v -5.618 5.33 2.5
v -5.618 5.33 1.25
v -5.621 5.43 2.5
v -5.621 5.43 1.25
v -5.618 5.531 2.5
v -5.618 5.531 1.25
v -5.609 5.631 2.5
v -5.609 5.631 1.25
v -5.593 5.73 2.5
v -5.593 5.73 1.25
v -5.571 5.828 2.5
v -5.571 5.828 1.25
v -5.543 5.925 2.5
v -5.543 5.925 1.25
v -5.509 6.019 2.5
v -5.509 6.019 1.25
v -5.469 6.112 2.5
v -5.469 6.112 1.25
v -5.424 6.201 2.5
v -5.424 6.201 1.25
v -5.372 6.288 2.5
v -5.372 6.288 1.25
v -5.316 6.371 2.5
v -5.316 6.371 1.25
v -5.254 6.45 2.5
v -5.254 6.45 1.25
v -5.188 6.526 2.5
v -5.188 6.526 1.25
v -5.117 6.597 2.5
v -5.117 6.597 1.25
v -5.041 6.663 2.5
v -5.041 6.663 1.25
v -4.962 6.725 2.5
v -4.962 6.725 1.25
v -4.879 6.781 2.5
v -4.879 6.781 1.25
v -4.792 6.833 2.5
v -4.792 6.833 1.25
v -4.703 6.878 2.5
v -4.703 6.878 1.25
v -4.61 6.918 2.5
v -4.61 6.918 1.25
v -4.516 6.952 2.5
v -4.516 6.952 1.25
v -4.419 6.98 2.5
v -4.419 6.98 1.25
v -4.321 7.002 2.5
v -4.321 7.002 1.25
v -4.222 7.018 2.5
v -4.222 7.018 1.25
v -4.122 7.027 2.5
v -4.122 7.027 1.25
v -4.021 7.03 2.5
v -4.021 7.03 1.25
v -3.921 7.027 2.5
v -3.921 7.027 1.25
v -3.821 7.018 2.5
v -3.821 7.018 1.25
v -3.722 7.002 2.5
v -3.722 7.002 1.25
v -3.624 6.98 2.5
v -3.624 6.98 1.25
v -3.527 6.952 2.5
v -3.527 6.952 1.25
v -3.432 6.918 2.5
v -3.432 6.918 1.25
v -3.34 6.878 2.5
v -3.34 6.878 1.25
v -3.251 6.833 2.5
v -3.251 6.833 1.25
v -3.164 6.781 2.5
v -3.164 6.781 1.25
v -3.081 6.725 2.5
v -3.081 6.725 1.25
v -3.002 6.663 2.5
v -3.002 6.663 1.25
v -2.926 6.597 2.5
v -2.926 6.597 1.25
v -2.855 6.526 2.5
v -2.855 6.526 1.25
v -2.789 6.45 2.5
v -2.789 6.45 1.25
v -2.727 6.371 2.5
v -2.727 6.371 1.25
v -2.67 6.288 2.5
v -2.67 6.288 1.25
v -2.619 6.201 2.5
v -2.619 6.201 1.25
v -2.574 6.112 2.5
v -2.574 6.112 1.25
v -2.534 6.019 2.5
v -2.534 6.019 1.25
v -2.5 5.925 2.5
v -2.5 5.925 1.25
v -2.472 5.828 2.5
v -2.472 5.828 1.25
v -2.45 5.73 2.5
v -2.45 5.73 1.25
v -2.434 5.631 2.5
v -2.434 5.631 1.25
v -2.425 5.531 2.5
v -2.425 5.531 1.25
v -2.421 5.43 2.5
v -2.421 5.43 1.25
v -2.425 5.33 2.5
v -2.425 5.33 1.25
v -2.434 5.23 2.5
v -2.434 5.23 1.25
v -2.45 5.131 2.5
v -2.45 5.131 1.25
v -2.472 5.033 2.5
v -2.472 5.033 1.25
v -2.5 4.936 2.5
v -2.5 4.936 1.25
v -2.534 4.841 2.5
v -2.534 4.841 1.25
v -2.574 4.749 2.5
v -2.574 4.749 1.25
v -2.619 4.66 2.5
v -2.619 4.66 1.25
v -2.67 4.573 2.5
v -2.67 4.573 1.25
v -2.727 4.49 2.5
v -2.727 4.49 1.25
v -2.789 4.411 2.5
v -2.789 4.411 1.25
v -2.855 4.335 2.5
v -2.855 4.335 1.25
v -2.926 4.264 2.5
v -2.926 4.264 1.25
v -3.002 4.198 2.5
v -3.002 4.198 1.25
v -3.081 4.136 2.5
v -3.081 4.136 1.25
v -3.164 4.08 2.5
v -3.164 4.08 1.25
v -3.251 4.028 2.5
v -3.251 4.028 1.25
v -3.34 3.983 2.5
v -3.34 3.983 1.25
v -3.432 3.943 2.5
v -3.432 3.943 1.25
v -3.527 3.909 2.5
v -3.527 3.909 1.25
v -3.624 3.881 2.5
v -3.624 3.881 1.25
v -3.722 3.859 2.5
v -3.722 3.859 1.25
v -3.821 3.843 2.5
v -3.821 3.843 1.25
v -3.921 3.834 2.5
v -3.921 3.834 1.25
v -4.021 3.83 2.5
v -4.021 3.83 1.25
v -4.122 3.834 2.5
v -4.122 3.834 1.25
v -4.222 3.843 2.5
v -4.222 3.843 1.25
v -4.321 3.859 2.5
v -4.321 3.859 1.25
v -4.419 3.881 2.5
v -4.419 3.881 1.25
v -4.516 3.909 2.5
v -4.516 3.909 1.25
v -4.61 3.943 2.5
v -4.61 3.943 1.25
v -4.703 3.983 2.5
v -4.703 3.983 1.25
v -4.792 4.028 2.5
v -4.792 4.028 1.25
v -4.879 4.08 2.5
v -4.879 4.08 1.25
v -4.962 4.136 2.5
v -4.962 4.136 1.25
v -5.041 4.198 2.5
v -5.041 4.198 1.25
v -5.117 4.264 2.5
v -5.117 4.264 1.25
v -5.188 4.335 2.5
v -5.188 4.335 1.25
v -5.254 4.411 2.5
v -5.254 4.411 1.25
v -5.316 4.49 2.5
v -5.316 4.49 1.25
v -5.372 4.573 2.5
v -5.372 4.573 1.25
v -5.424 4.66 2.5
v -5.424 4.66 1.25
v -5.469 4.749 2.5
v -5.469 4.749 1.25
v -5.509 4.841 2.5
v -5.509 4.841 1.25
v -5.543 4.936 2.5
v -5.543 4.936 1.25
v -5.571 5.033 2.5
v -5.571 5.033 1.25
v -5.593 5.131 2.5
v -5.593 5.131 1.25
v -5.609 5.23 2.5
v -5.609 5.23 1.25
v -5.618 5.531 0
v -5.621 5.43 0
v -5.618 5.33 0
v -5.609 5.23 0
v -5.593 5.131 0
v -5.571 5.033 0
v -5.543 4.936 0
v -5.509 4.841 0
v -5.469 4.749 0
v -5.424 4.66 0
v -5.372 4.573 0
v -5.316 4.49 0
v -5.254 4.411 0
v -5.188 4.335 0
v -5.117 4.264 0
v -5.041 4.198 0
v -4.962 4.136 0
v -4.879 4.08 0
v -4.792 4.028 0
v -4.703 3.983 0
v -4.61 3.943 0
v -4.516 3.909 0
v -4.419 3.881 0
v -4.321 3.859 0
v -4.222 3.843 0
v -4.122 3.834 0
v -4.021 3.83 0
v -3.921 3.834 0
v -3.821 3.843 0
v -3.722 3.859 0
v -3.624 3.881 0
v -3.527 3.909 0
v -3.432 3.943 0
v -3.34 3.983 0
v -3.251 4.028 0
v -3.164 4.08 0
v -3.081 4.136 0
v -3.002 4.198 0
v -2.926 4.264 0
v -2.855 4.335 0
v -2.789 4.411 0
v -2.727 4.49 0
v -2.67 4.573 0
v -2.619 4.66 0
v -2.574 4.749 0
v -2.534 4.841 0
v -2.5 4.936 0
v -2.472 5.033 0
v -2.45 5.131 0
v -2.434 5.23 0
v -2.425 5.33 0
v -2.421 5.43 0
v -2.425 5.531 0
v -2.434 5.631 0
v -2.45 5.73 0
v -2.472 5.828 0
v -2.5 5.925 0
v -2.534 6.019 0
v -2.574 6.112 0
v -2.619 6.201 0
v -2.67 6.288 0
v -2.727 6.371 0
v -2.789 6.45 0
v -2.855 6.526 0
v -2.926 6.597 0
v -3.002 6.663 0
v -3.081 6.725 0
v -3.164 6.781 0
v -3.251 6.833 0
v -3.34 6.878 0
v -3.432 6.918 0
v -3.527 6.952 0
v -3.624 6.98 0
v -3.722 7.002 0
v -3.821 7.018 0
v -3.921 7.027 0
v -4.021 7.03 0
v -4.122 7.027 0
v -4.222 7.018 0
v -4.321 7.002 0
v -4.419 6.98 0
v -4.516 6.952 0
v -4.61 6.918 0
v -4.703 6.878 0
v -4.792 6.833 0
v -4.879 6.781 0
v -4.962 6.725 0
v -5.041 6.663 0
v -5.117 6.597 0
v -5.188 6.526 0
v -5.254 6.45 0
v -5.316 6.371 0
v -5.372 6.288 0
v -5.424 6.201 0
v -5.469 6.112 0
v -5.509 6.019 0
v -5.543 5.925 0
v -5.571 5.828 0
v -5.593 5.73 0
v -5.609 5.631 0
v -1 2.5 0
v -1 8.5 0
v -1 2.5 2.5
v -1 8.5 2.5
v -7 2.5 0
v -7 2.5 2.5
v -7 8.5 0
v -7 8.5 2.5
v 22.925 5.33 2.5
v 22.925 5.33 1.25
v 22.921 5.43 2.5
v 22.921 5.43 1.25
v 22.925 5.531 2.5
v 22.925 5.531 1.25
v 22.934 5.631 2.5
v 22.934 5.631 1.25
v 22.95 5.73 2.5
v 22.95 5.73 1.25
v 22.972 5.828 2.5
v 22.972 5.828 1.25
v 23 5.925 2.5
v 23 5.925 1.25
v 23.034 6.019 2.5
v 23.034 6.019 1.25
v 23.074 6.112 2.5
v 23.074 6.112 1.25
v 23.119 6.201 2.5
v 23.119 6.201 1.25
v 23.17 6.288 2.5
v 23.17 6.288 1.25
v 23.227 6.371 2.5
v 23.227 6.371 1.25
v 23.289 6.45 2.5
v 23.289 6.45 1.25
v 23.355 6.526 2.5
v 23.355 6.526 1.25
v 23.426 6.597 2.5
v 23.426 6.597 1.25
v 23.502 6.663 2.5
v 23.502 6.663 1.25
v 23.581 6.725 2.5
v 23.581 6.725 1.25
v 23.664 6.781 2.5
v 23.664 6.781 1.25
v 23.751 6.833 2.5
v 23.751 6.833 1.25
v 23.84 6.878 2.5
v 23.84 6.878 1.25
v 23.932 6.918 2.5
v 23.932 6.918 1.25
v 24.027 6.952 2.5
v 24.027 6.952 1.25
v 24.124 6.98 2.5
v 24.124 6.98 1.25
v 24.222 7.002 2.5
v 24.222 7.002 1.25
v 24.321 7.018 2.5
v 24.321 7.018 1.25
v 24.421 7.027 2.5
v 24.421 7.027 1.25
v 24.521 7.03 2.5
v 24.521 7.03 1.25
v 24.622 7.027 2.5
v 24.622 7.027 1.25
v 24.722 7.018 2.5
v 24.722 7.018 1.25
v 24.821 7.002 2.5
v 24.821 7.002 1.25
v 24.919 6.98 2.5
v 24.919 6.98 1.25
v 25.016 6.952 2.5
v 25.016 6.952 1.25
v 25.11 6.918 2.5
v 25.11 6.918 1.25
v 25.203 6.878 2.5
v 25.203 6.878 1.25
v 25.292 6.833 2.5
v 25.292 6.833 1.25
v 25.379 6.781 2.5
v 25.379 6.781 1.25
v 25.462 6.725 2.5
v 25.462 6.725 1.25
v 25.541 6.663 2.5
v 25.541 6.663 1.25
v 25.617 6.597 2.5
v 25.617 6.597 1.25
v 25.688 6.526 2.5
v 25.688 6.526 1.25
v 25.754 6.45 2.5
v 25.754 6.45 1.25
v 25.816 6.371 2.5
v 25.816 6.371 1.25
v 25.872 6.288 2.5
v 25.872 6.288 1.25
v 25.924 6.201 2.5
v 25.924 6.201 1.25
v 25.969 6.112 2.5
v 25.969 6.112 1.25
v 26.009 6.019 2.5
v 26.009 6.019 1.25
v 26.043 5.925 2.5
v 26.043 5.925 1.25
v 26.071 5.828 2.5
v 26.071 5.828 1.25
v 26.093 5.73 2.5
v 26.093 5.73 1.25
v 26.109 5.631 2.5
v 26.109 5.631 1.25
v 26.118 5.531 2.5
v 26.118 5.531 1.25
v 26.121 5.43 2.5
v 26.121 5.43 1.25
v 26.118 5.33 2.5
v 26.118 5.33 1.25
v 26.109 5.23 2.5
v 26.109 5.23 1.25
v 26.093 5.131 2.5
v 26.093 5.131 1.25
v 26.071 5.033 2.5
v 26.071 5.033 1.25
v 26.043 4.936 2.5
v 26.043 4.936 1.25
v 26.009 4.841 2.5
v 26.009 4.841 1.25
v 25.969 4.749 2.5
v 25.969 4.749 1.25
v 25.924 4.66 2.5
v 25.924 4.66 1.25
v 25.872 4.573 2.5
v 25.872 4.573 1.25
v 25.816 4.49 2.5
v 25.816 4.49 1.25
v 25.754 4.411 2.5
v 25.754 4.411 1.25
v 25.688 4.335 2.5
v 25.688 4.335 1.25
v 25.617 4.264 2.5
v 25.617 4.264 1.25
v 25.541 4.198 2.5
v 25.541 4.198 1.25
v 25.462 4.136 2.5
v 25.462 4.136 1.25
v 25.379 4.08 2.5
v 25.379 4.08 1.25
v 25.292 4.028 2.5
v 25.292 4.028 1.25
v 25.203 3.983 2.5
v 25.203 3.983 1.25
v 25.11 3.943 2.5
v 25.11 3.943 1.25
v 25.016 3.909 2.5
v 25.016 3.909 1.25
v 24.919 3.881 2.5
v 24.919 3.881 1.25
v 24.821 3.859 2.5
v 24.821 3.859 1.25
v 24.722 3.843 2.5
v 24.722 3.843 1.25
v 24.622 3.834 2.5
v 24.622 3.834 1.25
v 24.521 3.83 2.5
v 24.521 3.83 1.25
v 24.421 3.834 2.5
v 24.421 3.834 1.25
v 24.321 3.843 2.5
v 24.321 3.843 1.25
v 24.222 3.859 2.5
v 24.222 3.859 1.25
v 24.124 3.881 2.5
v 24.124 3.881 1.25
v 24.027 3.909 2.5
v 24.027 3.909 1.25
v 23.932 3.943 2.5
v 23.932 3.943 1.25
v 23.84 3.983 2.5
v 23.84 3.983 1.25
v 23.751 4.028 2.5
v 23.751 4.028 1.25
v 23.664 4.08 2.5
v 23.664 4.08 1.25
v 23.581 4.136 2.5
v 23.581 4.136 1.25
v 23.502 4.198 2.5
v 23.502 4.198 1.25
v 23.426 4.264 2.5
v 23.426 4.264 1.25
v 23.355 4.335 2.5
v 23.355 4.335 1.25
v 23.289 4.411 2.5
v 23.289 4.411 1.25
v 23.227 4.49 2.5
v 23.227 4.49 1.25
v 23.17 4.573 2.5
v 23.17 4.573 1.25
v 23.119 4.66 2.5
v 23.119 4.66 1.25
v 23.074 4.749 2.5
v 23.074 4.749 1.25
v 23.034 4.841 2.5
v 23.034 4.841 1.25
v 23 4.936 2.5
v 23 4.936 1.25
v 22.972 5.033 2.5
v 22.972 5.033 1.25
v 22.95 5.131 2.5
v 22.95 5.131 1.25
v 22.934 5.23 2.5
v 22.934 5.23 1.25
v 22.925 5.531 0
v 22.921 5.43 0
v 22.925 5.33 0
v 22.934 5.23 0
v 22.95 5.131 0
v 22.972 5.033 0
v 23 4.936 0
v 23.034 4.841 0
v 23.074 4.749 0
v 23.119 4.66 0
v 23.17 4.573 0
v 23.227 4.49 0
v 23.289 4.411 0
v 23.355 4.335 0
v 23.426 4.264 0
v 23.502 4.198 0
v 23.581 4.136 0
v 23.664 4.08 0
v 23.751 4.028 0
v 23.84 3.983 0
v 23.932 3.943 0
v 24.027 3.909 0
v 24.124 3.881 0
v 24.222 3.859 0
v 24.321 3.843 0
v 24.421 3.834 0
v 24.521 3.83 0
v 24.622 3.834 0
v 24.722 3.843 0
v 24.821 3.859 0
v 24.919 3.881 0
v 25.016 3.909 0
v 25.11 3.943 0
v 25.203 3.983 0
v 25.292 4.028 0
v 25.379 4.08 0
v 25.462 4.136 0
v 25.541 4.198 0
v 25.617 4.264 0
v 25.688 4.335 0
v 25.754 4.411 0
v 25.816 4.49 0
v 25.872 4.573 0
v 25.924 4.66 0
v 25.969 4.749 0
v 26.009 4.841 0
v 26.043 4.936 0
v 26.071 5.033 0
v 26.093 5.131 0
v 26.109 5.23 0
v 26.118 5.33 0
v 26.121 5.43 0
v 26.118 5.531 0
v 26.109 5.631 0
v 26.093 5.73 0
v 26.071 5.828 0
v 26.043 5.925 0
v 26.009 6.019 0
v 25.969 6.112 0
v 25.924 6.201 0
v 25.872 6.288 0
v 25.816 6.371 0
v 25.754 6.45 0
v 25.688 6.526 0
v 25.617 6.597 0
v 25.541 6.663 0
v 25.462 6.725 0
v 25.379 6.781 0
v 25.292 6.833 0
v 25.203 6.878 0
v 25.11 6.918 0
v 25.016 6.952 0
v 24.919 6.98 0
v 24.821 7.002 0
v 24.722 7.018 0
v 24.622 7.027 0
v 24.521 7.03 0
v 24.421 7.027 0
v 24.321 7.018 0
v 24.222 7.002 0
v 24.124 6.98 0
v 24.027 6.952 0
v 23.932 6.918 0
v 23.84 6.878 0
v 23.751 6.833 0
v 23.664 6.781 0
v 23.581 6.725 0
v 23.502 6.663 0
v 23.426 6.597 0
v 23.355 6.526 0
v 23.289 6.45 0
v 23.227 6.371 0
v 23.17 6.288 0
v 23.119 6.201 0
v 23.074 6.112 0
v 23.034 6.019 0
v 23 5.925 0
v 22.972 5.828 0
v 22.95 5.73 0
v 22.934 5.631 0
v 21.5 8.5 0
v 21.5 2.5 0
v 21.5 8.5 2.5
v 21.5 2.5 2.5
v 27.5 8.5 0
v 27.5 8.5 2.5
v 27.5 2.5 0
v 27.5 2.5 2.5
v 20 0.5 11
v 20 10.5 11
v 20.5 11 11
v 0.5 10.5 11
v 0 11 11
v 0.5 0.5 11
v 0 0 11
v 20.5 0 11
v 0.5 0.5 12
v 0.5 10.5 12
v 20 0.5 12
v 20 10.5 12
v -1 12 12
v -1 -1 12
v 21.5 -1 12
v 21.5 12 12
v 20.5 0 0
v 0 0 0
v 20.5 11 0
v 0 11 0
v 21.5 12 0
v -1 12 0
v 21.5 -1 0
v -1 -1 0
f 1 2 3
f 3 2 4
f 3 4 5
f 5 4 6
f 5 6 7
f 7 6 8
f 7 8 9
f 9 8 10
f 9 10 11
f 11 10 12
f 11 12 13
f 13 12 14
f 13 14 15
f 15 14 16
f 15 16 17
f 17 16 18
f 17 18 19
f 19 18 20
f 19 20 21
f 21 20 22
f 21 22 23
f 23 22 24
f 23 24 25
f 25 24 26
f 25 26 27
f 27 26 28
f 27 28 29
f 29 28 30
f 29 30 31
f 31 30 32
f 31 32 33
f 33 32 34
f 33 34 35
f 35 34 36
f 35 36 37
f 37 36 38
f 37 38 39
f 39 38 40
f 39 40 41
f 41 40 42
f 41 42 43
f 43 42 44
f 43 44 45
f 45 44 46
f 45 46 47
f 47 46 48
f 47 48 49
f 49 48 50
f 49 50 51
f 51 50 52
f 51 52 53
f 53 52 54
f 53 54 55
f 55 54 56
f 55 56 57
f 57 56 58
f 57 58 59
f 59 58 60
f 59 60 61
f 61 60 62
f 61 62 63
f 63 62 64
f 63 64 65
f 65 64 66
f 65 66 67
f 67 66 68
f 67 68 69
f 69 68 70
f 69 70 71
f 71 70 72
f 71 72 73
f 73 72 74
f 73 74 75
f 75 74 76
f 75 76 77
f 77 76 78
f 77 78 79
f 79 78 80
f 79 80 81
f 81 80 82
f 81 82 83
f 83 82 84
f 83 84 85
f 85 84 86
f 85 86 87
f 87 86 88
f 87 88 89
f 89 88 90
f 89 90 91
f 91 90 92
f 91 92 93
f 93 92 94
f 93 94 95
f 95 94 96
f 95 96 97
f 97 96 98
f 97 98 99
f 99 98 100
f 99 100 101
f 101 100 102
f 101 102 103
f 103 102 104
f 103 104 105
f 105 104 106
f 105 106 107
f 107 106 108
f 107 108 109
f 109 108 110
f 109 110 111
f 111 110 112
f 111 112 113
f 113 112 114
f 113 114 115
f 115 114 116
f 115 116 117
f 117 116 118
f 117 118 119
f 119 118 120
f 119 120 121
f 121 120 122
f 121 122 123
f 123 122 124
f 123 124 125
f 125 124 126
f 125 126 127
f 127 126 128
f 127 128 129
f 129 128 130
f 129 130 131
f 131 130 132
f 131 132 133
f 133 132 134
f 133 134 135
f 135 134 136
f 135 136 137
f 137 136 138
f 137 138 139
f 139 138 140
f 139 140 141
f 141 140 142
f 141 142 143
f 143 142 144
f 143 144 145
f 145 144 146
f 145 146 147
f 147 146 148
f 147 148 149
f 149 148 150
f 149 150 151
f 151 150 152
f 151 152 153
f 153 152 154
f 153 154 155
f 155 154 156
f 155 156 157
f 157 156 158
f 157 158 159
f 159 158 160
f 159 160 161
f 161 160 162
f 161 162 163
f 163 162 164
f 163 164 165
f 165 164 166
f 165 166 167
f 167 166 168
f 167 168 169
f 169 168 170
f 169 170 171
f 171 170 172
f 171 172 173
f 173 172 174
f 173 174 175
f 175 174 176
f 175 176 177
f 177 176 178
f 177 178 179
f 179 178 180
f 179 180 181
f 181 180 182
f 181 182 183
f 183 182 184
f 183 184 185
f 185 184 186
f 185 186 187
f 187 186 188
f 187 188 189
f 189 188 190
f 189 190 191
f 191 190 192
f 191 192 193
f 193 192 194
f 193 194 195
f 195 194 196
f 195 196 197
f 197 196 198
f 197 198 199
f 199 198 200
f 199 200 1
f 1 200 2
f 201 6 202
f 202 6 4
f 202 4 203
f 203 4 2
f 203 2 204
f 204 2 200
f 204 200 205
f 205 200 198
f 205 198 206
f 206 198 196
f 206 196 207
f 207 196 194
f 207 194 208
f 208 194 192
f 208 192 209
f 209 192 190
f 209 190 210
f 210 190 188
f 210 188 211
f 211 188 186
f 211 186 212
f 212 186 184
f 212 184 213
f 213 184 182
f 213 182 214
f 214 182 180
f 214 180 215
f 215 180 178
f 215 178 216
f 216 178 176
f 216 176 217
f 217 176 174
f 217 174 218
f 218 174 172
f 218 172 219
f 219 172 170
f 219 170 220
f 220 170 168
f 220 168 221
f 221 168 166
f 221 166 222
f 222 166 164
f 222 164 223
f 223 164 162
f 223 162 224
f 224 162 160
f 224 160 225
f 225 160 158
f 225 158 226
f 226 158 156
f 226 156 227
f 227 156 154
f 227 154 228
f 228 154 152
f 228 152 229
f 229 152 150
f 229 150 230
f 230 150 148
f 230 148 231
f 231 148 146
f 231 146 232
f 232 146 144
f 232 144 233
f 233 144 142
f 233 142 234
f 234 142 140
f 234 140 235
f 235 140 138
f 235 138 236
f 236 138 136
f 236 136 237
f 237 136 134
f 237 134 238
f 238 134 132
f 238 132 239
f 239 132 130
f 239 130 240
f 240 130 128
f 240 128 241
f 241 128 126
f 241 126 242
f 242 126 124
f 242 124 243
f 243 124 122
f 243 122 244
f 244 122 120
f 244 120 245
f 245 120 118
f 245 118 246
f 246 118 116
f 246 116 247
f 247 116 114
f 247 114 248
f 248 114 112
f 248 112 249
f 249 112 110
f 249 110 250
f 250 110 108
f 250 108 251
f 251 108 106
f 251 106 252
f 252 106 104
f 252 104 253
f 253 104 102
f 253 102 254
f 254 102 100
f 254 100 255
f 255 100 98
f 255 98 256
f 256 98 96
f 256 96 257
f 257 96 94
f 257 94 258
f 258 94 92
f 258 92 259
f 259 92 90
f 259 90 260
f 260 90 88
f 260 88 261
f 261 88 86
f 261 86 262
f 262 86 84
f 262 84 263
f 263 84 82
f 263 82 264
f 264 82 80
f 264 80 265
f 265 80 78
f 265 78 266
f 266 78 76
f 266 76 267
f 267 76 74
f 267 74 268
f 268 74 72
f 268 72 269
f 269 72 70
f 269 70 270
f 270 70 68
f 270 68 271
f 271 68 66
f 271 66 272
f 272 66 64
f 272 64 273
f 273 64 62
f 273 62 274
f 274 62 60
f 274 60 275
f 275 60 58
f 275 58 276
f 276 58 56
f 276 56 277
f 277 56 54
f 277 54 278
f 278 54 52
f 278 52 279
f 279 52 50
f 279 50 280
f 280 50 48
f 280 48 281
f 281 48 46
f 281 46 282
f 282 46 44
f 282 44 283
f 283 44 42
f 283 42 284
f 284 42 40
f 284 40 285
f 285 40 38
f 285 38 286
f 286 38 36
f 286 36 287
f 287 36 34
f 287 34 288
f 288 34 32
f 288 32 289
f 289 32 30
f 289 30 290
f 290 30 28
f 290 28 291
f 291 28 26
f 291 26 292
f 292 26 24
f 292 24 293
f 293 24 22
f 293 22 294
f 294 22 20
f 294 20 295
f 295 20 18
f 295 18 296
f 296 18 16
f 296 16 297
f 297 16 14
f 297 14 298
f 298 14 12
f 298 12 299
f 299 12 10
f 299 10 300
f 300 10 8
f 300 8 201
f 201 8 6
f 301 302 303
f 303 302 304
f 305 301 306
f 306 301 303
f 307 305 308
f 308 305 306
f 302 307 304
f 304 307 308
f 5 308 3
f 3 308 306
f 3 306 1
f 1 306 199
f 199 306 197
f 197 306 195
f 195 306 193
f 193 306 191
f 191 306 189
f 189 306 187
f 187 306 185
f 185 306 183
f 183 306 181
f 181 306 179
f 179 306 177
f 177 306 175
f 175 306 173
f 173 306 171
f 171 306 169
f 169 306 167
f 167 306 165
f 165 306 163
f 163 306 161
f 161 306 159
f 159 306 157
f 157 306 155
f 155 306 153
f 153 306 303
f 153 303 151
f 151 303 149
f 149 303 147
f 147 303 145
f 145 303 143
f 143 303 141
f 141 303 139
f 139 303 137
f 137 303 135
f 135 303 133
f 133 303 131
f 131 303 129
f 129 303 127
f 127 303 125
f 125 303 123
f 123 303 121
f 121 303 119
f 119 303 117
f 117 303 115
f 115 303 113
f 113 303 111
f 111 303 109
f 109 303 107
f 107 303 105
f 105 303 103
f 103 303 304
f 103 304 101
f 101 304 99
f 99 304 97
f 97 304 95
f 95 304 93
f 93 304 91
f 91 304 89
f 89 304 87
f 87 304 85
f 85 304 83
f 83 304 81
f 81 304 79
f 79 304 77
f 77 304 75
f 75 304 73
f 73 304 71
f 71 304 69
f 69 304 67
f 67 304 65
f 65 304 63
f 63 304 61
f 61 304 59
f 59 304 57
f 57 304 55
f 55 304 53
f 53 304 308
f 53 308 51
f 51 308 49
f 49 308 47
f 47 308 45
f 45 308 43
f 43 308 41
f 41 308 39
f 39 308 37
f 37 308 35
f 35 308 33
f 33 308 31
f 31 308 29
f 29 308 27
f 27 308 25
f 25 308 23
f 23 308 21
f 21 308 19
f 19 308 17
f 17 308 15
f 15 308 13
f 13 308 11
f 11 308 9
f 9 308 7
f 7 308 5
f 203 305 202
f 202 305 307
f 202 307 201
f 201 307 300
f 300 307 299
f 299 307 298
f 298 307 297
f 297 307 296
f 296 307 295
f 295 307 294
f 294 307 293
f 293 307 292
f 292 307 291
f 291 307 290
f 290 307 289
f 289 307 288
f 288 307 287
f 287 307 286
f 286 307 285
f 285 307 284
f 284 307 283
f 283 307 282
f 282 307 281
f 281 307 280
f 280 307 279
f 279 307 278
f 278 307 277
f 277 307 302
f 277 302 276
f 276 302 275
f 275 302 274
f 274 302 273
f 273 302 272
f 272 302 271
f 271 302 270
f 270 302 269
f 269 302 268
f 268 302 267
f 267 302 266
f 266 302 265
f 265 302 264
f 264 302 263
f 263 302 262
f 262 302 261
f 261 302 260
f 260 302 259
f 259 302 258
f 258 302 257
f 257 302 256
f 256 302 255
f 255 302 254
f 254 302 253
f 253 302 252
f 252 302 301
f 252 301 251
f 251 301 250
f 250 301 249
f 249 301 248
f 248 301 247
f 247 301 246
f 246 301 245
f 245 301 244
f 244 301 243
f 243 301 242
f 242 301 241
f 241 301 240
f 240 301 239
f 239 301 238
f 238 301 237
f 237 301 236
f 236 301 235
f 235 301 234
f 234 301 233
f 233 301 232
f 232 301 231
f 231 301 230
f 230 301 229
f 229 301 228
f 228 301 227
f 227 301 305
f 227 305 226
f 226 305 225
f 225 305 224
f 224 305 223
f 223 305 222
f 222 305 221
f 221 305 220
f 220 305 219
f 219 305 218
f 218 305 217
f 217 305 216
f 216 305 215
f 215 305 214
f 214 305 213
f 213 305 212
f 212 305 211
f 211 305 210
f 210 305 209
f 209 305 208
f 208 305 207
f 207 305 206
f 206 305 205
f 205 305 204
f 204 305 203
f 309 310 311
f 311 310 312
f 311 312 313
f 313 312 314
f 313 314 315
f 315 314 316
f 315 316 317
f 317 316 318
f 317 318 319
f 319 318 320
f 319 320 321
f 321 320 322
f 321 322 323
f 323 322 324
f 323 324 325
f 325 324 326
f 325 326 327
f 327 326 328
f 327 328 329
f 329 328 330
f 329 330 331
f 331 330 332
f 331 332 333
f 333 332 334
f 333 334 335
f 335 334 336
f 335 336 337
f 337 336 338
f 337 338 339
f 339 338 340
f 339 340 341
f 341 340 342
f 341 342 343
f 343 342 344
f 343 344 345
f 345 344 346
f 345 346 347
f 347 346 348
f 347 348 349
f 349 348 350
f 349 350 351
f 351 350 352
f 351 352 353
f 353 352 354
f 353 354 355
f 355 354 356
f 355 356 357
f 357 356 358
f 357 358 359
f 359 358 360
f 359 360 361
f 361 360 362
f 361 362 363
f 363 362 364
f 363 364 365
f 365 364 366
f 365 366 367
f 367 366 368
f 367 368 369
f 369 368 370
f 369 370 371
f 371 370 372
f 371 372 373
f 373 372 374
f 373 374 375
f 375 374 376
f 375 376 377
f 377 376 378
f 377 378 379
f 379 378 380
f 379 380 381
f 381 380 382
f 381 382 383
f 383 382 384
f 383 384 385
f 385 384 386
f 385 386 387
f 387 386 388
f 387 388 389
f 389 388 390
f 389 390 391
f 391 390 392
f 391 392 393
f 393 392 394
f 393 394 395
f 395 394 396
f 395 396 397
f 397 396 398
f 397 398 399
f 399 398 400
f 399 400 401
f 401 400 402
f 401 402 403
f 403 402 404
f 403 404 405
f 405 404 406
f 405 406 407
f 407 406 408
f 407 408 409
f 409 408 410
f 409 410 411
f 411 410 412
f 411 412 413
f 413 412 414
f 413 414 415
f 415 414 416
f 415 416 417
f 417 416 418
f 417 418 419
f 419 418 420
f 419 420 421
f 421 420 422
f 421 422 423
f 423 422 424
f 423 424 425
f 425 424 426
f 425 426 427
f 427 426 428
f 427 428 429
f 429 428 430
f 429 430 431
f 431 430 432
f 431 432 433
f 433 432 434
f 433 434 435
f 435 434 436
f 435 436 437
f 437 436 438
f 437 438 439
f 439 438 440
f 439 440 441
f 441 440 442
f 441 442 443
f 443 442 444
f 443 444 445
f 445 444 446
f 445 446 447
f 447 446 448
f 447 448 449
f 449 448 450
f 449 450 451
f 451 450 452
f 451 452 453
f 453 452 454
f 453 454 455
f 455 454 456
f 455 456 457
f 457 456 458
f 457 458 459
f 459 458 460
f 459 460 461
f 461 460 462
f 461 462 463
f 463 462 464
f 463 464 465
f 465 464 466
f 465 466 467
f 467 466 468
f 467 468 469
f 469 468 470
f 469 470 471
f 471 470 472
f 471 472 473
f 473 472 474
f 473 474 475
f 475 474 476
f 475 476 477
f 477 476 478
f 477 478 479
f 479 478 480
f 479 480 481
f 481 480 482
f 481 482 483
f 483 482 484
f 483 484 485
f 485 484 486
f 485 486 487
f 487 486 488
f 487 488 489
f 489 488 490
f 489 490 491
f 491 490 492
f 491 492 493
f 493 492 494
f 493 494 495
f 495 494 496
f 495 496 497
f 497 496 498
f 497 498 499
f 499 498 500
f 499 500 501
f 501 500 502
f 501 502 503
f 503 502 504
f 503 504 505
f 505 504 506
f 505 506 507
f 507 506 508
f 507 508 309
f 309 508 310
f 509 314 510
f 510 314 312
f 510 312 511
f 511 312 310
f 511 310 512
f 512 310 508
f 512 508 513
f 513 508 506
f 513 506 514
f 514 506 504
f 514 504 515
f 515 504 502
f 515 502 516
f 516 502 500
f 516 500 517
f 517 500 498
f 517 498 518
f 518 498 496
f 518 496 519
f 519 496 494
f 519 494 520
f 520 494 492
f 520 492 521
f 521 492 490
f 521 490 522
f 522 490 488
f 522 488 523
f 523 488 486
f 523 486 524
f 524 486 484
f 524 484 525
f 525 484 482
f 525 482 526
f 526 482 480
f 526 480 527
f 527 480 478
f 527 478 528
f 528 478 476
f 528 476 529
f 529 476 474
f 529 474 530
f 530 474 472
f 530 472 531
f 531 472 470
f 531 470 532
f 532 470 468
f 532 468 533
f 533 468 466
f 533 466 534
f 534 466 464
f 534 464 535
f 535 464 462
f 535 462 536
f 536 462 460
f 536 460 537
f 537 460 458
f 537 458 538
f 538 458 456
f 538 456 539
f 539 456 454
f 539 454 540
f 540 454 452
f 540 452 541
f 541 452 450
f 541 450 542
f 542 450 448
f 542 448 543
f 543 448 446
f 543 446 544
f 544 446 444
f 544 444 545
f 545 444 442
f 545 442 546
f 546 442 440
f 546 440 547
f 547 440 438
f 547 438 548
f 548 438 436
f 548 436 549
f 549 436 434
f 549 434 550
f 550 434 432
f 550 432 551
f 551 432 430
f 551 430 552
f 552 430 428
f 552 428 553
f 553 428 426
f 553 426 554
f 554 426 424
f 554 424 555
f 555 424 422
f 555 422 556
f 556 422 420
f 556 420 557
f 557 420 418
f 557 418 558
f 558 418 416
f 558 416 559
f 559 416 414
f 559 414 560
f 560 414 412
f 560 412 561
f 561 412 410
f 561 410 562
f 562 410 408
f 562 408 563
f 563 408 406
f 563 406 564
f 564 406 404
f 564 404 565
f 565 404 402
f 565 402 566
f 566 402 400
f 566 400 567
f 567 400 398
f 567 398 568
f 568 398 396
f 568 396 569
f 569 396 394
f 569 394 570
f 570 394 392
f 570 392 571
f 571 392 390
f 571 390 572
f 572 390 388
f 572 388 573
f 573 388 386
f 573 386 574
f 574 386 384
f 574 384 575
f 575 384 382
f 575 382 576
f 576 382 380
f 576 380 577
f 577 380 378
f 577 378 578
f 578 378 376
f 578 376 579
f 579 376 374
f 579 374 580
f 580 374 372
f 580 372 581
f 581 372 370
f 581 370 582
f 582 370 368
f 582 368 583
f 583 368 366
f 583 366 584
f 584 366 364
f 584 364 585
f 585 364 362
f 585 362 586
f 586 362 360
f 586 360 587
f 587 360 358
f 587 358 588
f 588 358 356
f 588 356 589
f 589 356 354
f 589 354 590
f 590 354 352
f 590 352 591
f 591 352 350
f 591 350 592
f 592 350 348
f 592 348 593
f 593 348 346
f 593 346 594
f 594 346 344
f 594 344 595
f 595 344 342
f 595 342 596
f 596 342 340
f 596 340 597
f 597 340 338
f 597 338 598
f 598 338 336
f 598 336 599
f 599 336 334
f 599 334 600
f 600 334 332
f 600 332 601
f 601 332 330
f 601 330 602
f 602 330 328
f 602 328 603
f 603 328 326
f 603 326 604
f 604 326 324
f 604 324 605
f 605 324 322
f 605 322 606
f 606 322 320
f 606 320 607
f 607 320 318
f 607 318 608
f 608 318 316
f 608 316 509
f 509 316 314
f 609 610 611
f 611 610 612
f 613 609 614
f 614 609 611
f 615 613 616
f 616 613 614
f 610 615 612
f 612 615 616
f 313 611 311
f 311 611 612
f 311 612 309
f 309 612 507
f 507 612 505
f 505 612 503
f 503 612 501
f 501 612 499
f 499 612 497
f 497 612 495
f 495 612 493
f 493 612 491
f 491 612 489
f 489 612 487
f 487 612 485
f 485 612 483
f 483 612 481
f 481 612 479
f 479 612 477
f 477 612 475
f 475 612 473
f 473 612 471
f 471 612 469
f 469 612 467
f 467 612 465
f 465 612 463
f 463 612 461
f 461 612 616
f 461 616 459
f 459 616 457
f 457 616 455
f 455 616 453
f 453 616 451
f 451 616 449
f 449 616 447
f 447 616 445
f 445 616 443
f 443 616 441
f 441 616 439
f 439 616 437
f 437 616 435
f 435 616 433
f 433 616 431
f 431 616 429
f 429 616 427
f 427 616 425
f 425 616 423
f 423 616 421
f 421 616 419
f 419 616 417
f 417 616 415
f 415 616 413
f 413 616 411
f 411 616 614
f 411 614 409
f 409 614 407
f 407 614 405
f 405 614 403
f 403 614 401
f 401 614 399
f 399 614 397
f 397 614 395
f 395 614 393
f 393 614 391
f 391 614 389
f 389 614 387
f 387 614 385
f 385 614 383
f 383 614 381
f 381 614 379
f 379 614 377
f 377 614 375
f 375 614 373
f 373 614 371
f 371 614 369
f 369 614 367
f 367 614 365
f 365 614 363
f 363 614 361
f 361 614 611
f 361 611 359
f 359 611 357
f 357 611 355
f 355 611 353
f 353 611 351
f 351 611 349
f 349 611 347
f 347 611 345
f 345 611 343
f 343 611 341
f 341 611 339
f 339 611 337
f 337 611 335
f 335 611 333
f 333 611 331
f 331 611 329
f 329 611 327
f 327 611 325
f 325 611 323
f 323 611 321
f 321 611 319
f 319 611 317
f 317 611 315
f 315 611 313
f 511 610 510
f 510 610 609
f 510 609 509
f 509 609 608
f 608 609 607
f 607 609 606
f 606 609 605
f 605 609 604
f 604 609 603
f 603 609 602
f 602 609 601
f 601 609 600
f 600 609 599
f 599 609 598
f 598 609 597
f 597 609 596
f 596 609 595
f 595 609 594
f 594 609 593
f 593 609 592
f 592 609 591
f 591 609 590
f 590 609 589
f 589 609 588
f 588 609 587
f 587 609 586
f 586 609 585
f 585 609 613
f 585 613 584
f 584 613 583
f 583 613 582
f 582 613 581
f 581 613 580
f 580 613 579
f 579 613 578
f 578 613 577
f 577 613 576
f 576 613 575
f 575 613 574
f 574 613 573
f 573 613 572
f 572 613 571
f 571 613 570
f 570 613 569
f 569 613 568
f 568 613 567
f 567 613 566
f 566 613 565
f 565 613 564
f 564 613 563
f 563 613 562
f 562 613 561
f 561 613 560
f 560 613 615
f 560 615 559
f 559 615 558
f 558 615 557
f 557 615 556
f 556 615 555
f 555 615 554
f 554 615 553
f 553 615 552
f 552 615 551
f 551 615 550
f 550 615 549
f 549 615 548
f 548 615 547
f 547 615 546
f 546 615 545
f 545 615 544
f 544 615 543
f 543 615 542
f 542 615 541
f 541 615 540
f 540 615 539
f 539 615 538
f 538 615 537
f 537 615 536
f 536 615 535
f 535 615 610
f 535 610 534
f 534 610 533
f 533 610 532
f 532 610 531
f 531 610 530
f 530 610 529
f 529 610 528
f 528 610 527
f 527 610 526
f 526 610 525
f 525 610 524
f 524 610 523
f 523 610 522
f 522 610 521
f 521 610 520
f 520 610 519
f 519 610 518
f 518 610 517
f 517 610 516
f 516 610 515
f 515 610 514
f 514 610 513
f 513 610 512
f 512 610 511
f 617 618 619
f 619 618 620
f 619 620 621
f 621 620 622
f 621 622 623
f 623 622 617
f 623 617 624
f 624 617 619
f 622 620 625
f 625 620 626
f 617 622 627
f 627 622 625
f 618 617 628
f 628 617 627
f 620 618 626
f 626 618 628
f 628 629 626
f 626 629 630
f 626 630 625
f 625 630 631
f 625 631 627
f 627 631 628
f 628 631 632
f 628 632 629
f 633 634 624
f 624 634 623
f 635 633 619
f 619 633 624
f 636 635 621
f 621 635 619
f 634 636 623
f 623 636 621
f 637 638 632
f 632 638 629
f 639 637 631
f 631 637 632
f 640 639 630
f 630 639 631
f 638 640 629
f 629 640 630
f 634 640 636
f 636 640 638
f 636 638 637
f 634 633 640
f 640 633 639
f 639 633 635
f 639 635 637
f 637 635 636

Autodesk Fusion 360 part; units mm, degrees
sketch "Sketch2" plane through (0, 0, 0) normal (0, 0, 1) x (1, 0, 0)
  line L0 (0, 0) -> (20.5, 0)
  line L1 (20.5, 0) -> (20.5, 11)
  line L2 (20.5, 11) -> (0, 11)
  line L3 (0, 11) -> (0, 0)
  line L4 (-1, -1) -> (21.5, -1)
  line L5 (21.5, -1) -> (21.5, 12)
  line L6 (21.5, 12) -> (-1, 12)
  line L7 (-1, 12) -> (-1, -1)
  line L8 (-1, 5.5) -> (21.5, 5.5) construction
  line L9 (-1, 2.5) -> (-7, 2.5)
  line L10 (-7, 2.5) -> (-7, 8.5)
  line L11 (-7, 8.5) -> (-1, 8.5)
  line L12 (-1, 8.5) -> (-1, 2.5)
  line L13 (10.25, 12) -> (10.25, -1) construction
  circle A0 centre (-4.0214, 5.4305) radius 1.6
  circle A1 centre (24.5214, 5.4305) radius 1.6
  line L14 (27.5, 8.5) -> (21.5, 8.5)
  line L15 (27.5, 2.5) -> (27.5, 8.5)
  line L16 (21.5, 2.5) -> (27.5, 2.5)
  dimension "d1" = 20.5
  dimension "d2" = 11
  dimension "d3" = 1
  dimension "d9" = 3.2
  dimension "d10" = 6
  dimension "d11" = 6
extrude "Extrude3" add sketch "Sketch2" along normal blind 2.5 contours L7 L9 L10 L11 L12 | L5 L14 L15 L16 makes body 1 at (-4.047, 8.0087, 0) makes body 2 at (24.4673, 8.0087, 0)
extrude "Extrude1" add sketch "Sketch2" along normal blind 11 separate body contours L4 L5 L6 L7 L12 makes body 3
sketch "Sketch3" plane through (0, 0, 11) normal (0, 0, 1) x (-1, 0, 0)
  line L0 (0, 0) -> (0, -11)
  line L1 (0, -11) -> (-20.5, -11)
  line L2 (-20.5, -11) -> (-20.5, 0)
  line L3 (-20.5, 0) -> (0, 0)
  line L4 (1, -12) -> (1, 1)
  line L5 (1, 1) -> (-21.5, 1)
  line L6 (-21.5, 1) -> (-21.5, -12)
  line L7 (-21.5, -12) -> (1, -12)
  line L8 (-20, -0.5) -> (-0.5, -0.5)
  line L9 (-0.5, -0.5) -> (-0.5, -10.5)
  line L10 (-0.5, -10.5) -> (-20, -10.5)
  line L11 (-20, -10.5) -> (-20, -0.5)
  dimension "d6" = 0.5
extrude "Extrude2" add sketch "Sketch3" along normal blind 1 contours L0 L1 L2 L3 | L4 L5 L6 L7 bodies 3
